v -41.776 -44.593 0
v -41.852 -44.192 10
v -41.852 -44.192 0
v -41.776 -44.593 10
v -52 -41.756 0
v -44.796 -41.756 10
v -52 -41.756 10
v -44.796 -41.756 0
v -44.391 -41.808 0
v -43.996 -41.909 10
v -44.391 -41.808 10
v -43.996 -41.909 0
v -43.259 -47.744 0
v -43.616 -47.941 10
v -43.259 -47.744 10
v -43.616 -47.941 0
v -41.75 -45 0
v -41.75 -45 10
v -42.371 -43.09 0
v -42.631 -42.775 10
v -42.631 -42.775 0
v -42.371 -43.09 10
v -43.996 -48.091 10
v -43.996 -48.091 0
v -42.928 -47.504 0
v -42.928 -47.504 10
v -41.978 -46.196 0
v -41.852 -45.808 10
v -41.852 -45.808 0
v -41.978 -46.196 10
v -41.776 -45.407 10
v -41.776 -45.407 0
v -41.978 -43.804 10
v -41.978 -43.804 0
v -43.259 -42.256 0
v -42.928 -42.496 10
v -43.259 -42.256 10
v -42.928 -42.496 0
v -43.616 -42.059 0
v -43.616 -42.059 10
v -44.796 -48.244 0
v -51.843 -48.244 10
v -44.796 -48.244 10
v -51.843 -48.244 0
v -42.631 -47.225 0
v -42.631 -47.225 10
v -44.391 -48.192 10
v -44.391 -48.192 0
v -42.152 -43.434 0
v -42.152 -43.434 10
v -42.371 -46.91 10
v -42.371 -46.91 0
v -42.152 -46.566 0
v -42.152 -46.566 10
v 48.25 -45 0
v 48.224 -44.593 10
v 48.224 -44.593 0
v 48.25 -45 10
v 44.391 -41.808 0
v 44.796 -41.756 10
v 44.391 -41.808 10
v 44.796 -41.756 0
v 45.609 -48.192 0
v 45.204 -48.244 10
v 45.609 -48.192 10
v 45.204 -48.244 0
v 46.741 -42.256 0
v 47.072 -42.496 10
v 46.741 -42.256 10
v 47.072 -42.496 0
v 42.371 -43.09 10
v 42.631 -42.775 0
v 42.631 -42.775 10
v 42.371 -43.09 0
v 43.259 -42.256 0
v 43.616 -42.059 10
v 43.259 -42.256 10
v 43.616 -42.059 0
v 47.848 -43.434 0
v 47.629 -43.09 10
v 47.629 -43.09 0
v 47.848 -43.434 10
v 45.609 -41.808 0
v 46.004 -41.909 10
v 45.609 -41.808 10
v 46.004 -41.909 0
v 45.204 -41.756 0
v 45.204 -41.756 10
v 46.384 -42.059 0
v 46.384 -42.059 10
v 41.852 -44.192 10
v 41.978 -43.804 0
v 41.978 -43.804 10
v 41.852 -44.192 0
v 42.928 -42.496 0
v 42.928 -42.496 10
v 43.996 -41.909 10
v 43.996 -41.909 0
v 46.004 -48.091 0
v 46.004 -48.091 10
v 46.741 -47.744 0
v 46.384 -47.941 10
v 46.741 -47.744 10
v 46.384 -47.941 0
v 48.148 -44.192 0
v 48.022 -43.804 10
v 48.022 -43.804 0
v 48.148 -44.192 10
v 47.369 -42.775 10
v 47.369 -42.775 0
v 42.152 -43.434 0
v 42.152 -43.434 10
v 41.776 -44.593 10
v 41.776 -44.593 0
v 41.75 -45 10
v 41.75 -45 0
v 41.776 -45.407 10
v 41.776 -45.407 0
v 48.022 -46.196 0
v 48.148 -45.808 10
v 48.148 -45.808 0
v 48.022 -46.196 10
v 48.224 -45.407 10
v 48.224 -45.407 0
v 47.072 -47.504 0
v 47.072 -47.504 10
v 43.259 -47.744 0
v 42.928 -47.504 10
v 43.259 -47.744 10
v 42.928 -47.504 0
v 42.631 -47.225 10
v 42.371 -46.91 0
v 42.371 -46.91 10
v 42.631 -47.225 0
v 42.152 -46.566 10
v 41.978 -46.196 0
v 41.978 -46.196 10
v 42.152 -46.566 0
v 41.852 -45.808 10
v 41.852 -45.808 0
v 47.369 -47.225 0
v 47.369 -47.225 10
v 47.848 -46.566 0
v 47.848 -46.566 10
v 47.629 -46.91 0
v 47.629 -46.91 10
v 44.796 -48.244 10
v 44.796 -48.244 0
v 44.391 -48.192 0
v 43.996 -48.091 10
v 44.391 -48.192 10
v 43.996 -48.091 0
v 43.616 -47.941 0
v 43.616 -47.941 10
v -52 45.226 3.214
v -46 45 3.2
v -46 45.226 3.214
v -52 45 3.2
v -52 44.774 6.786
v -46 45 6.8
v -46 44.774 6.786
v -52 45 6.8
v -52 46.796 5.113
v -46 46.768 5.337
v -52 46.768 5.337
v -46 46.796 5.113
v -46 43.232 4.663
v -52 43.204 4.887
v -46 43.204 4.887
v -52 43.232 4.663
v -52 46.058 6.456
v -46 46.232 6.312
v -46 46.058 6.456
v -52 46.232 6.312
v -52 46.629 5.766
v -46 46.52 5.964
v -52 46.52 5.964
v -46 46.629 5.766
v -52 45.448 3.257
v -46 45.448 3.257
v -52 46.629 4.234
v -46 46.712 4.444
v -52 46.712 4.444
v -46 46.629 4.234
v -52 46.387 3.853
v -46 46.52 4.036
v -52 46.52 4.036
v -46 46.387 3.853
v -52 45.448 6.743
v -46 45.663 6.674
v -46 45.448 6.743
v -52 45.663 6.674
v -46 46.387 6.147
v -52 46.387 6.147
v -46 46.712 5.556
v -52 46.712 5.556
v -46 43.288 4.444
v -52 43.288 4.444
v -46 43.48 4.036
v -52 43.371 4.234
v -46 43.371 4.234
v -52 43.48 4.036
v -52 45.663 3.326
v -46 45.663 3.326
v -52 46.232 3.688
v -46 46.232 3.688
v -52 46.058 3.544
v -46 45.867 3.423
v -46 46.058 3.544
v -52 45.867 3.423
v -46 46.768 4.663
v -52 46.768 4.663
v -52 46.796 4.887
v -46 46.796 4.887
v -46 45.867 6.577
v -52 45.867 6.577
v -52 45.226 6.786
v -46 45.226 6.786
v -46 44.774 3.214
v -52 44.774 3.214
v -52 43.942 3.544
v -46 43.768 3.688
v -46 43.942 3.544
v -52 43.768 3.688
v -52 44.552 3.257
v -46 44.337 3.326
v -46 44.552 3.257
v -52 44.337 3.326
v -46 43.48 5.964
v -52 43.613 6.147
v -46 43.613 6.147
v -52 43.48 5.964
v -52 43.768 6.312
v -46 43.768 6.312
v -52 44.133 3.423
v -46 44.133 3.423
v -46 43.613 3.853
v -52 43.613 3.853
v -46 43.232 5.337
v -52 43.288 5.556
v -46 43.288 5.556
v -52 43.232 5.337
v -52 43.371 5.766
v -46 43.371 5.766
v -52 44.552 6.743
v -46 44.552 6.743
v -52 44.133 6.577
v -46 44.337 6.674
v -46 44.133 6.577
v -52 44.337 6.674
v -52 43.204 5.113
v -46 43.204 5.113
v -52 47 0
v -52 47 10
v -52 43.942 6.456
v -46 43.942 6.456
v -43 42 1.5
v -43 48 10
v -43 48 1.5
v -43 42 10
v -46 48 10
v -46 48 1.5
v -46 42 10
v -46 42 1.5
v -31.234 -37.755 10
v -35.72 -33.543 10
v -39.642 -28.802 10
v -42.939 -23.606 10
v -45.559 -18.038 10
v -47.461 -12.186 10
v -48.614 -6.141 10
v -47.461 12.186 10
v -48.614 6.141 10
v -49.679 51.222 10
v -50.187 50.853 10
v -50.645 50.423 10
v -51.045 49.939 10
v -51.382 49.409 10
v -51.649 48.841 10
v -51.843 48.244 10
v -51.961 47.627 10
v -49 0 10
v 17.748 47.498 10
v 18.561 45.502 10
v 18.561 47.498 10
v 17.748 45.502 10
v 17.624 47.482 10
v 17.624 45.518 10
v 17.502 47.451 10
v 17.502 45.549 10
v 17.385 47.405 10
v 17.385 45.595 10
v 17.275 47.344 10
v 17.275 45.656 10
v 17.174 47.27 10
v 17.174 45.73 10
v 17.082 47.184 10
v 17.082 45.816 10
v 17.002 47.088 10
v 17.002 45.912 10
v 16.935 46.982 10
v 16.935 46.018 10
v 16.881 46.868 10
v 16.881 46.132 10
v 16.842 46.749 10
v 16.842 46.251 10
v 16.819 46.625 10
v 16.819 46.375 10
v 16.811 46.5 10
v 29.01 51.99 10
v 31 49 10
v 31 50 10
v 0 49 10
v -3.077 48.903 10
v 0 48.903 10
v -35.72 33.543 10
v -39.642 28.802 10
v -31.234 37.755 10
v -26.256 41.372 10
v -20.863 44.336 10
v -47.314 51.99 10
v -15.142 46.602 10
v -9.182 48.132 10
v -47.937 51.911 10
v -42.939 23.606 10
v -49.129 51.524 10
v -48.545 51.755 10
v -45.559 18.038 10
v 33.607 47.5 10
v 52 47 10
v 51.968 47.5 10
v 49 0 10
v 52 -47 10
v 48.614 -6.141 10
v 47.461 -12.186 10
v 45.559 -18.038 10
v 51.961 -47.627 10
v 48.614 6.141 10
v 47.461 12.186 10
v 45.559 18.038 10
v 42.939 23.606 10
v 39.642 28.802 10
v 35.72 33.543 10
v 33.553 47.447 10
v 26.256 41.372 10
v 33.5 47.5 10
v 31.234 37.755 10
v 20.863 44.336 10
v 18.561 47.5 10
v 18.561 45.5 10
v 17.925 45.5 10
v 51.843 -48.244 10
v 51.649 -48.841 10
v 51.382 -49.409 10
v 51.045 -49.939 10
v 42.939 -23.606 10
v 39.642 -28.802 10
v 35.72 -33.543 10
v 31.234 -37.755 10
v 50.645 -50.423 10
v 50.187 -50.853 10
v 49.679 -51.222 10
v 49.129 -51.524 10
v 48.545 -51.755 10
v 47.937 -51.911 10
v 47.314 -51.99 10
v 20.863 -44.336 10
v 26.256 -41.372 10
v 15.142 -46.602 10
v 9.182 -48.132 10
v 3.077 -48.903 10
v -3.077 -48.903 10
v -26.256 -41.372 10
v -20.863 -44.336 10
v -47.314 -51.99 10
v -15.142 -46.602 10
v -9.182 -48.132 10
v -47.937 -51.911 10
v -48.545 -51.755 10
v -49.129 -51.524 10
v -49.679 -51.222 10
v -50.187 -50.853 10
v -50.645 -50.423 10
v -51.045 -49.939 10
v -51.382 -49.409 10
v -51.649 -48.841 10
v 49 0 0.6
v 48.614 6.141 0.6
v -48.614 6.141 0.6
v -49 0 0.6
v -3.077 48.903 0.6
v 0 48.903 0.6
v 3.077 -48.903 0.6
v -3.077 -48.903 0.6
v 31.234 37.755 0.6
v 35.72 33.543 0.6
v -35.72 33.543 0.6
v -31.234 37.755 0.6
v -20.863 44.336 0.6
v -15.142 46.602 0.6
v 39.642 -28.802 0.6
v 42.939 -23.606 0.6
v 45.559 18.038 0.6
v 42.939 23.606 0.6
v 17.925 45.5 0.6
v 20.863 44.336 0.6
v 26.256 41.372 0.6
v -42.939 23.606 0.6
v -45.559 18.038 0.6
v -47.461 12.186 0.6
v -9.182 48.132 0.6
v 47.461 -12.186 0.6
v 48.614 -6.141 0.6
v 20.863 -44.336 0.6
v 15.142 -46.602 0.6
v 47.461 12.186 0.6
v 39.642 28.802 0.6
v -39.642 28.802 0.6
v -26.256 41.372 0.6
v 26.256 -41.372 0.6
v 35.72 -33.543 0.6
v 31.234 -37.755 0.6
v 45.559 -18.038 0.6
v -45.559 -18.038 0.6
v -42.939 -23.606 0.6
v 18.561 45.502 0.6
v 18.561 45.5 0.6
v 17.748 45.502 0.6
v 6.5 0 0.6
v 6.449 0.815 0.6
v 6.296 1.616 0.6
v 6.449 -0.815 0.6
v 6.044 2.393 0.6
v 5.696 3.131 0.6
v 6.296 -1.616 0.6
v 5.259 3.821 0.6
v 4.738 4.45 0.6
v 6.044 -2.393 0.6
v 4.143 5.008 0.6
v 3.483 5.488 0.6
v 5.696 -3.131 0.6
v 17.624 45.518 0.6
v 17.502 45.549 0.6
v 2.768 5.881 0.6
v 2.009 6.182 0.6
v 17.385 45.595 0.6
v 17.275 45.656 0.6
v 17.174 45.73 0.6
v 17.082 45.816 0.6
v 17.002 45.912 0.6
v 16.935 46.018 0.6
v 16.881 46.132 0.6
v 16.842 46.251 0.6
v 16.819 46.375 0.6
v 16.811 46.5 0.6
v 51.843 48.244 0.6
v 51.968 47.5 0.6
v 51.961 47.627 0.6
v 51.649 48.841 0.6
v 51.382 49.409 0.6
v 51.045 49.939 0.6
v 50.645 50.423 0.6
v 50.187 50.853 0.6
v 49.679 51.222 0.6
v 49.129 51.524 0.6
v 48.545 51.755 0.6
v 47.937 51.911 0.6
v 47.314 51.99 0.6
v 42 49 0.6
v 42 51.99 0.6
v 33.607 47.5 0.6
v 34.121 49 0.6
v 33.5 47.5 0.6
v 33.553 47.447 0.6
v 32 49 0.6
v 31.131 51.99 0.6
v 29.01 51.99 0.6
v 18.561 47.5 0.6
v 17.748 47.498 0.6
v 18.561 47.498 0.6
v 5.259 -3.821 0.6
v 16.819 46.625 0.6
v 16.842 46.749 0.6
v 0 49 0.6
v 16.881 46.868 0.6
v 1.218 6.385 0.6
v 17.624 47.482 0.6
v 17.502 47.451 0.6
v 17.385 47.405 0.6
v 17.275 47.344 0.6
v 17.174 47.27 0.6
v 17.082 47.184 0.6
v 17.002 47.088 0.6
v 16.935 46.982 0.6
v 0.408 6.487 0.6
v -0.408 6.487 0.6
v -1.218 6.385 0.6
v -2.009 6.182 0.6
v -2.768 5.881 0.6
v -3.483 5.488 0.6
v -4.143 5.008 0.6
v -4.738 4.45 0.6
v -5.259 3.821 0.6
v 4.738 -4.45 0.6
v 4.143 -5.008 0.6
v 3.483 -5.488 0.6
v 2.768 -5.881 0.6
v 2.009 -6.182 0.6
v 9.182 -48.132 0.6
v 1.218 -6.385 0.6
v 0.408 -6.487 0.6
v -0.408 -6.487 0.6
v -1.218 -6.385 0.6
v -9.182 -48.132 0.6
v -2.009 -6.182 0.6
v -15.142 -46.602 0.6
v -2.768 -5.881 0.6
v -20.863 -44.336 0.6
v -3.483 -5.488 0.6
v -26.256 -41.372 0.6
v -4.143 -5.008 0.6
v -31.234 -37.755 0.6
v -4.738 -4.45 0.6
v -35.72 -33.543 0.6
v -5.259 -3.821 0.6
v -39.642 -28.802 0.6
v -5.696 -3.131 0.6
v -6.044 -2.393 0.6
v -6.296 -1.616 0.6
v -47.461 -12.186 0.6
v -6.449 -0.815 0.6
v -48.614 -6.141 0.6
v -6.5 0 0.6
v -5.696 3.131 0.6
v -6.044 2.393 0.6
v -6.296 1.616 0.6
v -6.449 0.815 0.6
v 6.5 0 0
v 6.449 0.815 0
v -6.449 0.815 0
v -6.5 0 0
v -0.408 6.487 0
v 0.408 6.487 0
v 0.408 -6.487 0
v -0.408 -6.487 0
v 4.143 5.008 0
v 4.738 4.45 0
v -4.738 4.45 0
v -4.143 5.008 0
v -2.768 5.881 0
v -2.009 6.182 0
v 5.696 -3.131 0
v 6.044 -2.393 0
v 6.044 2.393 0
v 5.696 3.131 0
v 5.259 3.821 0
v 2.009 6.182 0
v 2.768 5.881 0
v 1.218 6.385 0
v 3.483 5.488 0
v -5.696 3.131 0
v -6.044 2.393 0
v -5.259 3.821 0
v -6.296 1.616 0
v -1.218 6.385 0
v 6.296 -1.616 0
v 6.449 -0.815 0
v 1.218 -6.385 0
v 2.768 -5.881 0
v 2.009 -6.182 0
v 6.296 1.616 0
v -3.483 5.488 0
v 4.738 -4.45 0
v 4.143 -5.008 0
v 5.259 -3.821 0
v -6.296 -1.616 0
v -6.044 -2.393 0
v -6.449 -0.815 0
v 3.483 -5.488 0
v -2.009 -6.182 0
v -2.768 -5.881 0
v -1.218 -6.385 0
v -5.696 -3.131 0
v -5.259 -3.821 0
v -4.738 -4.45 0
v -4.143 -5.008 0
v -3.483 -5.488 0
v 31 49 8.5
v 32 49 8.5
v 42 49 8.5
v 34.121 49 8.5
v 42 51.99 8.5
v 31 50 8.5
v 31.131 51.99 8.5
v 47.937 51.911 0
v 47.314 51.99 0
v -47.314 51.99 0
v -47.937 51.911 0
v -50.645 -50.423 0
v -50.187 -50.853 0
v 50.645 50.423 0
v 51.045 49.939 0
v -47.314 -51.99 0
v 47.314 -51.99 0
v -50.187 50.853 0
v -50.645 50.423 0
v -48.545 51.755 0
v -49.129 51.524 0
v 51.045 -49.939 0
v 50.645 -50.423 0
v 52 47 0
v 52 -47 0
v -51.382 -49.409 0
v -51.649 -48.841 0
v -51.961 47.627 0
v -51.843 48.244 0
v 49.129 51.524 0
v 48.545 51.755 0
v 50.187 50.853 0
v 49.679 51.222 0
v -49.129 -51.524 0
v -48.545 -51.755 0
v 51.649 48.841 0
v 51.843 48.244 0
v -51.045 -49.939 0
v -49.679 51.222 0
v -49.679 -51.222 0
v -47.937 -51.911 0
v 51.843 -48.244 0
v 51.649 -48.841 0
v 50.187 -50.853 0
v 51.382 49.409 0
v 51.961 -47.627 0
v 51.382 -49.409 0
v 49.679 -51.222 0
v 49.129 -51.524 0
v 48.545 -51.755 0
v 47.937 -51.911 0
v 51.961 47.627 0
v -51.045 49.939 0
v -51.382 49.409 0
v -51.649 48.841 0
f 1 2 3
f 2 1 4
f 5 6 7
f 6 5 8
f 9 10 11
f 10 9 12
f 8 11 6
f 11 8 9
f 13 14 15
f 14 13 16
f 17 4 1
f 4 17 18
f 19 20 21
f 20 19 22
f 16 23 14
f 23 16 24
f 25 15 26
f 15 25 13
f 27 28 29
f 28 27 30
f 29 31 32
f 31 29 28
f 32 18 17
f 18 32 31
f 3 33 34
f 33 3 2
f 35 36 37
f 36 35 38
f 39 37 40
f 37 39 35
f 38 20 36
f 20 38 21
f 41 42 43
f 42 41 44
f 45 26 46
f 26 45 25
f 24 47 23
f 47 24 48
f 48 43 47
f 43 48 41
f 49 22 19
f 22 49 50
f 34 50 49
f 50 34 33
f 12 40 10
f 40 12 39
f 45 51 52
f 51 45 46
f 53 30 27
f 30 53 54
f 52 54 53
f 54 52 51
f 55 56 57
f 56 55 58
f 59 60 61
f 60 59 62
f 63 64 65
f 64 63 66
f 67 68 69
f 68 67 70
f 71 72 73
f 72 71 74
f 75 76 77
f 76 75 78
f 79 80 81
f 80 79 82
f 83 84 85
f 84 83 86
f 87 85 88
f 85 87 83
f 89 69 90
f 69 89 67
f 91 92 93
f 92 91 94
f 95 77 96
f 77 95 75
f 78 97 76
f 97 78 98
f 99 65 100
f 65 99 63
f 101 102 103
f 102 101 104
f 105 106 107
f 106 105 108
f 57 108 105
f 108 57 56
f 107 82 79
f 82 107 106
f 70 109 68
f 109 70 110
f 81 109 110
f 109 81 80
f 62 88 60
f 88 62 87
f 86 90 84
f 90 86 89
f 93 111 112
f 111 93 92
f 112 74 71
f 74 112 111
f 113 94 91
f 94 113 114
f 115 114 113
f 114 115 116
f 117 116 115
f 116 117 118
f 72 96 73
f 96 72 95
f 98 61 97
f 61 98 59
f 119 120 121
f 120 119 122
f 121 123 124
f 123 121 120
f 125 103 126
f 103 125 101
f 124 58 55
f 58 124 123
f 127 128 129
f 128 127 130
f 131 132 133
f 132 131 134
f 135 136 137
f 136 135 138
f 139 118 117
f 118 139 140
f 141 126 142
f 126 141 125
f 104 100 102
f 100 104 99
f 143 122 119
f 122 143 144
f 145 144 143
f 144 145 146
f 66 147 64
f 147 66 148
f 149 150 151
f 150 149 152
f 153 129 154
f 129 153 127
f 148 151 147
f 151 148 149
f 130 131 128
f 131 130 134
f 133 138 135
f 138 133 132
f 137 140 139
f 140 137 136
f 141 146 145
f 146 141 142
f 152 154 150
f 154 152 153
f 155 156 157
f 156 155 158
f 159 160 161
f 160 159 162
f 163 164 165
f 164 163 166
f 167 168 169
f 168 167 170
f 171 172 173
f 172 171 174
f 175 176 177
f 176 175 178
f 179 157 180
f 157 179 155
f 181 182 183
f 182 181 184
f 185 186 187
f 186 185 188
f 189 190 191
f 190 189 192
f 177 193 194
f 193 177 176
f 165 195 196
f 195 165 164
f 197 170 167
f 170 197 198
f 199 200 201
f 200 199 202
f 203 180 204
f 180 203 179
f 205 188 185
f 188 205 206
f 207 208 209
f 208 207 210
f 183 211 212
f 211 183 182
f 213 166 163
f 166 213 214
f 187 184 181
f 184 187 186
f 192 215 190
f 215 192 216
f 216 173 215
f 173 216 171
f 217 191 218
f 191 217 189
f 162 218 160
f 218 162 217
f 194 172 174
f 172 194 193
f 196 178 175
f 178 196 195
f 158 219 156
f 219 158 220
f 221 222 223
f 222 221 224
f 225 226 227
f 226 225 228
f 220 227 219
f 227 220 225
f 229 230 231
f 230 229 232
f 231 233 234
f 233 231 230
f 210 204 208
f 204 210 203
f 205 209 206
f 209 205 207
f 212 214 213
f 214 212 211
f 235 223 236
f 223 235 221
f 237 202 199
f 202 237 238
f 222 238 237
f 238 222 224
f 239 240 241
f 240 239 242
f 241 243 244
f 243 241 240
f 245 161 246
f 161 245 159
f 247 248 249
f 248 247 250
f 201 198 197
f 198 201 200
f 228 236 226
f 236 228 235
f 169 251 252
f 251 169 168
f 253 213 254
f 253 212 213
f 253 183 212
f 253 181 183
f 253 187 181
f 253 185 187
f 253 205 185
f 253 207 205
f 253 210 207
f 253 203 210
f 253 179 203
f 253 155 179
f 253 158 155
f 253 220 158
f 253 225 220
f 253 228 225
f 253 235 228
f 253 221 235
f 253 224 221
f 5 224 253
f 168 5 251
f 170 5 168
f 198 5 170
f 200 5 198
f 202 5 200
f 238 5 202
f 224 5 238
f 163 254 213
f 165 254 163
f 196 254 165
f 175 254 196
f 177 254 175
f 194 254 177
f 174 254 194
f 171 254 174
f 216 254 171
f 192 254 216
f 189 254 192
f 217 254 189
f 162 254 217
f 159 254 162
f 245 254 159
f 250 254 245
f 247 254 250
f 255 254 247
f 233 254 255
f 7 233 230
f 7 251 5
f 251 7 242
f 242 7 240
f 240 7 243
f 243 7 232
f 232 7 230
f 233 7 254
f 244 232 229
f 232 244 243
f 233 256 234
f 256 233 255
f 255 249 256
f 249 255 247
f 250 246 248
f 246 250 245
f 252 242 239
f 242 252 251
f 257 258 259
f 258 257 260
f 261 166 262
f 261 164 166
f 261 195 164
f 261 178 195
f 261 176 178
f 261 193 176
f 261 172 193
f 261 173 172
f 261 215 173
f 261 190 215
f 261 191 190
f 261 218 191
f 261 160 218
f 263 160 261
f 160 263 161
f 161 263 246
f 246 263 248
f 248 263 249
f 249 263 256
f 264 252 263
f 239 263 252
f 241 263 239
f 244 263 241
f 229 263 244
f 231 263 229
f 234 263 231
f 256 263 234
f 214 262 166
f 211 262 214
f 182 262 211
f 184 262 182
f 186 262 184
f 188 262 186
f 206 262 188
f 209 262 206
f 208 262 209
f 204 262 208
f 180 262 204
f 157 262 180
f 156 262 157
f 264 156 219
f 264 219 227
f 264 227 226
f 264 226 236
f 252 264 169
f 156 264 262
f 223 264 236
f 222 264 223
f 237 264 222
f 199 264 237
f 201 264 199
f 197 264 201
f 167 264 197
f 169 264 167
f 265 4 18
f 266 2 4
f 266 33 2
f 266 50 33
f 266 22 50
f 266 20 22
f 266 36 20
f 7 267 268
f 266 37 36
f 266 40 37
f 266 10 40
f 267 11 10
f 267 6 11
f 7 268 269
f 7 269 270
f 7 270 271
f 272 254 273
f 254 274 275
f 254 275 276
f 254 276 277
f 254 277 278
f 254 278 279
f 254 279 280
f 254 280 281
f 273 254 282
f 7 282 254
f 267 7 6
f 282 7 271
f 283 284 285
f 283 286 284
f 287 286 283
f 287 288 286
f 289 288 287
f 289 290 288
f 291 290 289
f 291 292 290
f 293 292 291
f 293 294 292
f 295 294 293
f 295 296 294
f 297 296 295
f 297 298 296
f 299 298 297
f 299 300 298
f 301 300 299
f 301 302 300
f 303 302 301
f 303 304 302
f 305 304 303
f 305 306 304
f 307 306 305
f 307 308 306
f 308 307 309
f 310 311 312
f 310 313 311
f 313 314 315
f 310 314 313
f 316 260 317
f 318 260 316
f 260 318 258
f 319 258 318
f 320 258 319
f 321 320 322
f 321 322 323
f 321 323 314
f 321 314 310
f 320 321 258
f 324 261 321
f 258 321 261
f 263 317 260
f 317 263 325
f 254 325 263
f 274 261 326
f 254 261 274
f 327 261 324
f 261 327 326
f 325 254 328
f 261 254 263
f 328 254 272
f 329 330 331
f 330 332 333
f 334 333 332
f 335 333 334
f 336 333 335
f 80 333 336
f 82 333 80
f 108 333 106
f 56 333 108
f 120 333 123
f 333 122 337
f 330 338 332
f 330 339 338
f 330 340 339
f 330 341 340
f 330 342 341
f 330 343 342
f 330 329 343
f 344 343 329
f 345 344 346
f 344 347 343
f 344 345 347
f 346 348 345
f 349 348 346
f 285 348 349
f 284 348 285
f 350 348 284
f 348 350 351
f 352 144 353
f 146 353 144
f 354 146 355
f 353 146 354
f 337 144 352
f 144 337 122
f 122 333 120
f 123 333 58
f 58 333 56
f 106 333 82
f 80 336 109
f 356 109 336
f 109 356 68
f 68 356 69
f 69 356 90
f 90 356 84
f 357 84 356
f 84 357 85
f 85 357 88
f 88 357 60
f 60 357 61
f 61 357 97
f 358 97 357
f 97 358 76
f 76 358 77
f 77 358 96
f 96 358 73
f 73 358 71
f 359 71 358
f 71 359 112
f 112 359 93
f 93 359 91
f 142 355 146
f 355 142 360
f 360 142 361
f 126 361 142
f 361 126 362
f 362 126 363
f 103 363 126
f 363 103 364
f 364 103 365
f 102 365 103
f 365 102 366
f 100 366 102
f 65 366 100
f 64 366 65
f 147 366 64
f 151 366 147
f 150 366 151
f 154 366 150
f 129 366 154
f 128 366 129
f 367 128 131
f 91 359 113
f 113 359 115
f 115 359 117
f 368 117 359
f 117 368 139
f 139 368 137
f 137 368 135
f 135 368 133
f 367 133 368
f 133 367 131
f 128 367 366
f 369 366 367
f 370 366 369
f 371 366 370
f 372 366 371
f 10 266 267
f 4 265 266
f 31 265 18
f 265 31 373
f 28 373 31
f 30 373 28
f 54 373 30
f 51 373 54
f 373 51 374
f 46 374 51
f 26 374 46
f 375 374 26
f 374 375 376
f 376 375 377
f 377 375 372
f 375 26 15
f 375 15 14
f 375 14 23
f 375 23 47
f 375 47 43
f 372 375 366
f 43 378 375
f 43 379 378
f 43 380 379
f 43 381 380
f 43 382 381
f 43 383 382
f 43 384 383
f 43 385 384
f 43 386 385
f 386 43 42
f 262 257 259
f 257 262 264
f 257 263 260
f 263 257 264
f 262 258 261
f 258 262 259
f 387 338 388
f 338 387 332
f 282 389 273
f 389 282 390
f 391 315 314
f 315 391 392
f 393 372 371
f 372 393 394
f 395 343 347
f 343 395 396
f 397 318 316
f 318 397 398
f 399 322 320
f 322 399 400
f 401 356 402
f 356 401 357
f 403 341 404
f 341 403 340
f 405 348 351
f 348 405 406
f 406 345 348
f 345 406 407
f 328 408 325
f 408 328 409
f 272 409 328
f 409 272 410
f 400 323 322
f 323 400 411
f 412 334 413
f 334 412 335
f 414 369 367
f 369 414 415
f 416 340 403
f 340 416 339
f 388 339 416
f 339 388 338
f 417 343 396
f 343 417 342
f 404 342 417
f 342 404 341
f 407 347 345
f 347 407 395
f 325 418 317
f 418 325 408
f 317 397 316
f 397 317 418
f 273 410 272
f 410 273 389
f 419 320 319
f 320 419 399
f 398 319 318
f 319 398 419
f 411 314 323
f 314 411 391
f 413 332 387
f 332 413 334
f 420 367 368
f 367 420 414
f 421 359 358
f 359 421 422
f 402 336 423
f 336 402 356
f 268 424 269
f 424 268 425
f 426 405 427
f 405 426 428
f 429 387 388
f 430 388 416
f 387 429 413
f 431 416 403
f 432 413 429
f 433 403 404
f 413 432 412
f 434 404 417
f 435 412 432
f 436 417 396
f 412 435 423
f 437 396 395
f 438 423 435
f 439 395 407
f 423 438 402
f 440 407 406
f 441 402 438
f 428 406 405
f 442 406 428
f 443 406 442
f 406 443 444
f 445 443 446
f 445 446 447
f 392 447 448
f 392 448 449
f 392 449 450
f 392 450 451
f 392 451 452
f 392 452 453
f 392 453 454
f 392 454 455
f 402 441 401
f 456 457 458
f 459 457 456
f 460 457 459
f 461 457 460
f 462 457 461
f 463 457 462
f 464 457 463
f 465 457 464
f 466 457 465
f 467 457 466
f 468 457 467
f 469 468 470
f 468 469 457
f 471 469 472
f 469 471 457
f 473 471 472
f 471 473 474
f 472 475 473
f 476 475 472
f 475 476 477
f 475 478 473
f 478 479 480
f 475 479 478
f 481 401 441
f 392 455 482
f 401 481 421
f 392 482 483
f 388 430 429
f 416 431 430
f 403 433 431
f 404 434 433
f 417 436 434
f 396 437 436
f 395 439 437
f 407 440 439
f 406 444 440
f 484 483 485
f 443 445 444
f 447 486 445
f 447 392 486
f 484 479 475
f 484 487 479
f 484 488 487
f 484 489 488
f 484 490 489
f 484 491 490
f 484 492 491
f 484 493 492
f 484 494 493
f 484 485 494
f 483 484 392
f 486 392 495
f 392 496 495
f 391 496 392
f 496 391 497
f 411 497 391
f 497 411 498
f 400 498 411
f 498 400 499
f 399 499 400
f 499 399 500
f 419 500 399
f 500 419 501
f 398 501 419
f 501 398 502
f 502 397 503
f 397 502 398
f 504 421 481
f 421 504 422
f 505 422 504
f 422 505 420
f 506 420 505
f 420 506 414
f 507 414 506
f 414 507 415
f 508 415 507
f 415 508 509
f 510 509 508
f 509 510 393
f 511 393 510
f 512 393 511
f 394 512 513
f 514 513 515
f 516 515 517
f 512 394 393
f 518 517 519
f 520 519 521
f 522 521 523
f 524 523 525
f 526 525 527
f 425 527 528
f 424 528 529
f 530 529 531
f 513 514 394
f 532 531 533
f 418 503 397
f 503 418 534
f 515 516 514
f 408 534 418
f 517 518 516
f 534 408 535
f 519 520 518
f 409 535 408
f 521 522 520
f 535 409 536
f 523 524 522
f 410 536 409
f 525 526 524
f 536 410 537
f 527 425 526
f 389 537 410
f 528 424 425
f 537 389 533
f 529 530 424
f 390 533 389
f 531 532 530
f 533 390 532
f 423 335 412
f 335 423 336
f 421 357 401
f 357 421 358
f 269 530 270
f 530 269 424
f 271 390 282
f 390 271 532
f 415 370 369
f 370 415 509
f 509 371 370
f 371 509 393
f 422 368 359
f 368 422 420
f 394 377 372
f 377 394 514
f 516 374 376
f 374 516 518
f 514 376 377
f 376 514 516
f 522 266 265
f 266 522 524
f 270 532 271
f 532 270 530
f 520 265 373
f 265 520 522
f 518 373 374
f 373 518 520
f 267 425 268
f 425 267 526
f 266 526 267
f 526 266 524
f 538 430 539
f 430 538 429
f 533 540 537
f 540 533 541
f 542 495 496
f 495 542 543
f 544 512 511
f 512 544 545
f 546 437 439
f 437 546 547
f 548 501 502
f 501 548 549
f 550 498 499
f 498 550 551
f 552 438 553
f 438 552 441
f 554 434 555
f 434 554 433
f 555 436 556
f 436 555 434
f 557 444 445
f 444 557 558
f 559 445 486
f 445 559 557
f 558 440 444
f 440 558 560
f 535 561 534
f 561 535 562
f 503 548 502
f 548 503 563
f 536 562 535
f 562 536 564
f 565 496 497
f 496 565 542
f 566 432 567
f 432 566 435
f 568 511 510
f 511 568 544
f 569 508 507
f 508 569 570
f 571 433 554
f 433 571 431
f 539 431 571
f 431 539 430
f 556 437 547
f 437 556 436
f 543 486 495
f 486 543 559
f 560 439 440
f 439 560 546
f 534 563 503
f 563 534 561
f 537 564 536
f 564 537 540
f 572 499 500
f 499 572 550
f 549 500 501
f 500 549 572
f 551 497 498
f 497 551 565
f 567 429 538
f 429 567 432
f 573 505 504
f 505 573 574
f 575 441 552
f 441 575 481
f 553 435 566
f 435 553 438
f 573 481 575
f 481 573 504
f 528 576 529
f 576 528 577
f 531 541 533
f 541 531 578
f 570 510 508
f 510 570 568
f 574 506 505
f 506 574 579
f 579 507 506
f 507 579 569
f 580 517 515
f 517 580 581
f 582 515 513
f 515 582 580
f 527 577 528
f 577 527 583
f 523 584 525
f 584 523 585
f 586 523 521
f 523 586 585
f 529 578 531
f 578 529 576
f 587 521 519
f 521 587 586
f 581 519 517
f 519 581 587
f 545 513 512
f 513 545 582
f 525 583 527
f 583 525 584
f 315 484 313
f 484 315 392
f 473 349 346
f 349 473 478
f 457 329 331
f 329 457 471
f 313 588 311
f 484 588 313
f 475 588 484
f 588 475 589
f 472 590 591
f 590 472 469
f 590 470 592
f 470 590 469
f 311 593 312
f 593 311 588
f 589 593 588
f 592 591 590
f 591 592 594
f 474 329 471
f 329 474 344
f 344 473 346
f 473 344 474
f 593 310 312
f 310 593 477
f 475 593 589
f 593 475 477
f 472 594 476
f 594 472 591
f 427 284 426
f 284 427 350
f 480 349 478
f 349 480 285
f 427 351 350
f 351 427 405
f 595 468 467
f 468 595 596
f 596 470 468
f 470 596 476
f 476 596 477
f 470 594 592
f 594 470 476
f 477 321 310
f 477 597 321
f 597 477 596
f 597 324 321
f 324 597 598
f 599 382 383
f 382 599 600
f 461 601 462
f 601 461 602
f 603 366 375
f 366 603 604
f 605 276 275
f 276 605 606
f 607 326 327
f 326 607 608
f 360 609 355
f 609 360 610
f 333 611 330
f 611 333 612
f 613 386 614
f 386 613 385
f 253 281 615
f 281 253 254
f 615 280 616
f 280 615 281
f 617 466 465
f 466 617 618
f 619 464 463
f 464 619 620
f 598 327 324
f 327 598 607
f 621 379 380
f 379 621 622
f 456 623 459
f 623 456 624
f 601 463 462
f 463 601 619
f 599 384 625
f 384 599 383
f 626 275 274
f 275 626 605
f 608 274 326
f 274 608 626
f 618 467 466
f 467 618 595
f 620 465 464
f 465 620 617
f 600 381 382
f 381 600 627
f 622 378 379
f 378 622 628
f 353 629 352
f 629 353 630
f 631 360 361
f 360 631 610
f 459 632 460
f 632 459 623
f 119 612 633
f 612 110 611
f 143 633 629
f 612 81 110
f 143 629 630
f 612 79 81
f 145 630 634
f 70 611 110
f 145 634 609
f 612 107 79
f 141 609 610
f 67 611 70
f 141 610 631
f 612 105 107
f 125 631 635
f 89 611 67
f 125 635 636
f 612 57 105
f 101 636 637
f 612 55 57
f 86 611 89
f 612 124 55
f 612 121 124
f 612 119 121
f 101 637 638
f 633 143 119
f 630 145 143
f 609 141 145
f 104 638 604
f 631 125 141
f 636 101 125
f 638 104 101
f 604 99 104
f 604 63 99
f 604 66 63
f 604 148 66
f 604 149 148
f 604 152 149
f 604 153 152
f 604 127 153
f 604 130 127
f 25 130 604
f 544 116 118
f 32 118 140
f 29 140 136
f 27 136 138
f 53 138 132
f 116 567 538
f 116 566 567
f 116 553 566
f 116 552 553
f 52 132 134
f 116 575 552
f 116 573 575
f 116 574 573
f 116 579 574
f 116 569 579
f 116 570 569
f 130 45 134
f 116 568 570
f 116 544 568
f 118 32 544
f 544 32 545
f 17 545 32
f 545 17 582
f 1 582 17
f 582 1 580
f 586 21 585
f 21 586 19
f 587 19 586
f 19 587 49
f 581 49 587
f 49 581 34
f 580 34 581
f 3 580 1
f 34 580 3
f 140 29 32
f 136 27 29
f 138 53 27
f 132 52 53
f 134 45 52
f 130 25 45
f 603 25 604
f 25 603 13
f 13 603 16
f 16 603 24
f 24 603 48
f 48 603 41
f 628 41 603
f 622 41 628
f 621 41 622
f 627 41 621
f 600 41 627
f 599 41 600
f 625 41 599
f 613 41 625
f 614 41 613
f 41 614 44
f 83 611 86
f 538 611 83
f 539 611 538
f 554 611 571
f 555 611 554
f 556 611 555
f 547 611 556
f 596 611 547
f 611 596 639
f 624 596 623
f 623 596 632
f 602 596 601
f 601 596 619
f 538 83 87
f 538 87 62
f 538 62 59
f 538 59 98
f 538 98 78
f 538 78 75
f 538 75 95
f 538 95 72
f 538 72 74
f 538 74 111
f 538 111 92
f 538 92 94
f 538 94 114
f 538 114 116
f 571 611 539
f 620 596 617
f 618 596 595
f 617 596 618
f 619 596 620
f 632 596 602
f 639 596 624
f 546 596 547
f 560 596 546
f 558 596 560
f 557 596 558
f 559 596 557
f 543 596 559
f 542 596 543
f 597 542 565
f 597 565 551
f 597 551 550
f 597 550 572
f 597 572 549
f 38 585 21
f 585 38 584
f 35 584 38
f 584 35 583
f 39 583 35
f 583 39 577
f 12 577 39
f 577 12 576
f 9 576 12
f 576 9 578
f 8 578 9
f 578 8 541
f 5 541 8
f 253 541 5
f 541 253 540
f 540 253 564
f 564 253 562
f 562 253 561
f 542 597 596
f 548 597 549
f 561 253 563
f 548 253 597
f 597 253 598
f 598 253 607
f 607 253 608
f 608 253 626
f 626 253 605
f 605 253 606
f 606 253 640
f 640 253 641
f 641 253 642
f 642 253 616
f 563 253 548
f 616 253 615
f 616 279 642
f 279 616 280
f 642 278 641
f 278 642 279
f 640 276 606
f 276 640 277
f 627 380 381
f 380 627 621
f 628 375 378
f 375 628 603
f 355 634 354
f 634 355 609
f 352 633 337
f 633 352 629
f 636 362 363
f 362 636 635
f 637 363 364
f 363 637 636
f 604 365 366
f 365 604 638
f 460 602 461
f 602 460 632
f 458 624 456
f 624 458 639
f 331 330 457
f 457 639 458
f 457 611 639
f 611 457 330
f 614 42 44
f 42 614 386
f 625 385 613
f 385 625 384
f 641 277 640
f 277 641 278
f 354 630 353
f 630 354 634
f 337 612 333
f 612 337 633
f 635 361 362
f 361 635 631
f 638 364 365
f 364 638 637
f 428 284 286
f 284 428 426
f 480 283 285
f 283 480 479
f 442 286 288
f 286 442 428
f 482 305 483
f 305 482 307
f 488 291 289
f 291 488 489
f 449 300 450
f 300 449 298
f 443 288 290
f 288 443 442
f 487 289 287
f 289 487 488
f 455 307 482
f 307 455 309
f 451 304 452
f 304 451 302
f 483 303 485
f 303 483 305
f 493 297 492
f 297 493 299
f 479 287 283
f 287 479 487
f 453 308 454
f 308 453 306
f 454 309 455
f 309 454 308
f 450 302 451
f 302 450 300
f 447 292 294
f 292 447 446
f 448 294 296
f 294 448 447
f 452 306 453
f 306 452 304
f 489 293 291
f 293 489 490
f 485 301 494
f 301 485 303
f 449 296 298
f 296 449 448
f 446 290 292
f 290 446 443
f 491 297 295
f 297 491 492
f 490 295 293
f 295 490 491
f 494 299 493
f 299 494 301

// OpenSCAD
$fn = 50;


union() {
	difference() {
		union() {
			translate(v = [0, 0, 0]) {
				rotate(a = [0, 0, 0]) {
					hull() {
						translate(v = [-47.0000000000, 47.0000000000, 0]) {
							rotate(a = [0, 0, 0]) {
								translate(v = [0, 0, 0]) {
									rotate(a = [0, 0, 0]) {
										cylinder(h = 10, r = 5);
									}
								}
							}
						}
						translate(v = [47.0000000000, 47.0000000000, 0]) {
							rotate(a = [0, 0, 0]) {
								translate(v = [0, 0, 0]) {
									rotate(a = [0, 0, 0]) {
										cylinder(h = 10, r = 5);
									}
								}
							}
						}
						translate(v = [-47.0000000000, -47.0000000000, 0]) {
							rotate(a = [0, 0, 0]) {
								translate(v = [0, 0, 0]) {
									rotate(a = [0, 0, 0]) {
										cylinder(h = 10, r = 5);
									}
								}
							}
						}
						translate(v = [47.0000000000, -47.0000000000, 0]) {
							rotate(a = [0, 0, 0]) {
								translate(v = [0, 0, 0]) {
									rotate(a = [0, 0, 0]) {
										cylinder(h = 10, r = 5);
									}
								}
							}
						}
					}
				}
			}
		}
		union() {
			translate(v = [-52.5000000000, -45.0000000000, -125]) {
				rotate(a = [0, 0, 0]) {
					hull() {
						translate(v = [7.5000000000, 0, 0]) {
							rotate(a = [0, 0, 0]) {
								translate(v = [0, 0, 0]) {
									rotate(a = [0, 0, 0]) {
										cylinder(h = 250, r = 3.2500000000);
									}
								}
							}
						}
						translate(v = [-7.5000000000, 0, 0]) {
							rotate(a = [0, 0, 0]) {
								translate(v = [0, 0, 0]) {
									rotate(a = [0, 0, 0]) {
										cylinder(h = 250, r = 3.2500000000);
									}
								}
							}
						}
					}
				}
			}
			translate(v = [45.0000000000, -45.0000000000, -125.0000000000]) {
				rotate(a = [0, 0, 0]) {
					cylinder(h = 250, r = 3.2500000000);
				}
			}
			translate(v = [-52.0000000000, 45.0000000000, 5.0000000000]) {
				rotate(a = [0, 90, 0]) {
					cylinder(h = 9, r = 1.8000000000);
				}
			}
			translate(v = [-46.0000000000, 42.0000000000, 1.5000000000]) {
				rotate(a = [0, 0, 0]) {
					cube(size = [3, 6, 8.5000000000]);
				}
			}
			translate(v = [0, 0, 0.6000000000]) {
				rotate(a = [0, 0, 0]) {
					cylinder(h = 12.4000000000, r = 49.0000000000);
				}
			}
			translate(v = [0, 0, -5.0000000000]) {
				rotate(a = [0, 0, 0]) {
					cylinder(h = 10, r = 6.5000000000);
				}
			}
			translate(v = [0.0000000000, 47.5000000000, 0.6000000000]) {
				rotate(a = [0, 0, 0]) {
					cube(size = [52.0000000000, 1.5000000000, 12.4000000000]);
				}
			}
			translate(v = [42.0000000000, 47.5000000000, 0.6000000000]) {
				rotate(a = [0, 0, 0]) {
					cube(size = [10, 4.5000000000, 12.4000000000]);
				}
			}
			#translate(v = [31.0000000000, 47.5000000000, 8.5000000000]) {
				rotate(a = [0, 0, 0]) {
					cube(size = [21, 4.5000000000, 1.5000000000]);
				}
			}
			translate(v = [28.2500000000, 52.7500000000, 0.6000000000]) {
				rotate(a = [0, 0, -45]) {
					cube(size = [7.5000000000, 1.5000000000, 12.4000000000]);
				}
			}
			translate(v = [11.0610000000, 45.5000000000, 0.6000000000]) {
				rotate(a = [0, 0, 0]) {
					cube(size = [7.5000000000, 2, 9.4000000000]);
				}
			}
		}
	}
	union() {
		translate(v = [20.3110000000, 46.5000000000, 0]) {
			rotate(a = [0, 0, 0]) {
				hull() {
					translate(v = [2.5000000000, 0, 0]) {
						rotate(a = [0, 0, 0]) {
							translate(v = [0, 0, 0]) {
								rotate(a = [0, 0, 0]) {
									cylinder(h = 10, r = 1.0000000000);
								}
							}
						}
					}
					translate(v = [-2.5000000000, 0, 0]) {
						rotate(a = [0, 0, 0]) {
							translate(v = [0, 0, 0]) {
								rotate(a = [0, 0, 0]) {
									cylinder(h = 10, r = 1.0000000000);
								}
							}
						}
					}
				}
			}
		}
	}
}
